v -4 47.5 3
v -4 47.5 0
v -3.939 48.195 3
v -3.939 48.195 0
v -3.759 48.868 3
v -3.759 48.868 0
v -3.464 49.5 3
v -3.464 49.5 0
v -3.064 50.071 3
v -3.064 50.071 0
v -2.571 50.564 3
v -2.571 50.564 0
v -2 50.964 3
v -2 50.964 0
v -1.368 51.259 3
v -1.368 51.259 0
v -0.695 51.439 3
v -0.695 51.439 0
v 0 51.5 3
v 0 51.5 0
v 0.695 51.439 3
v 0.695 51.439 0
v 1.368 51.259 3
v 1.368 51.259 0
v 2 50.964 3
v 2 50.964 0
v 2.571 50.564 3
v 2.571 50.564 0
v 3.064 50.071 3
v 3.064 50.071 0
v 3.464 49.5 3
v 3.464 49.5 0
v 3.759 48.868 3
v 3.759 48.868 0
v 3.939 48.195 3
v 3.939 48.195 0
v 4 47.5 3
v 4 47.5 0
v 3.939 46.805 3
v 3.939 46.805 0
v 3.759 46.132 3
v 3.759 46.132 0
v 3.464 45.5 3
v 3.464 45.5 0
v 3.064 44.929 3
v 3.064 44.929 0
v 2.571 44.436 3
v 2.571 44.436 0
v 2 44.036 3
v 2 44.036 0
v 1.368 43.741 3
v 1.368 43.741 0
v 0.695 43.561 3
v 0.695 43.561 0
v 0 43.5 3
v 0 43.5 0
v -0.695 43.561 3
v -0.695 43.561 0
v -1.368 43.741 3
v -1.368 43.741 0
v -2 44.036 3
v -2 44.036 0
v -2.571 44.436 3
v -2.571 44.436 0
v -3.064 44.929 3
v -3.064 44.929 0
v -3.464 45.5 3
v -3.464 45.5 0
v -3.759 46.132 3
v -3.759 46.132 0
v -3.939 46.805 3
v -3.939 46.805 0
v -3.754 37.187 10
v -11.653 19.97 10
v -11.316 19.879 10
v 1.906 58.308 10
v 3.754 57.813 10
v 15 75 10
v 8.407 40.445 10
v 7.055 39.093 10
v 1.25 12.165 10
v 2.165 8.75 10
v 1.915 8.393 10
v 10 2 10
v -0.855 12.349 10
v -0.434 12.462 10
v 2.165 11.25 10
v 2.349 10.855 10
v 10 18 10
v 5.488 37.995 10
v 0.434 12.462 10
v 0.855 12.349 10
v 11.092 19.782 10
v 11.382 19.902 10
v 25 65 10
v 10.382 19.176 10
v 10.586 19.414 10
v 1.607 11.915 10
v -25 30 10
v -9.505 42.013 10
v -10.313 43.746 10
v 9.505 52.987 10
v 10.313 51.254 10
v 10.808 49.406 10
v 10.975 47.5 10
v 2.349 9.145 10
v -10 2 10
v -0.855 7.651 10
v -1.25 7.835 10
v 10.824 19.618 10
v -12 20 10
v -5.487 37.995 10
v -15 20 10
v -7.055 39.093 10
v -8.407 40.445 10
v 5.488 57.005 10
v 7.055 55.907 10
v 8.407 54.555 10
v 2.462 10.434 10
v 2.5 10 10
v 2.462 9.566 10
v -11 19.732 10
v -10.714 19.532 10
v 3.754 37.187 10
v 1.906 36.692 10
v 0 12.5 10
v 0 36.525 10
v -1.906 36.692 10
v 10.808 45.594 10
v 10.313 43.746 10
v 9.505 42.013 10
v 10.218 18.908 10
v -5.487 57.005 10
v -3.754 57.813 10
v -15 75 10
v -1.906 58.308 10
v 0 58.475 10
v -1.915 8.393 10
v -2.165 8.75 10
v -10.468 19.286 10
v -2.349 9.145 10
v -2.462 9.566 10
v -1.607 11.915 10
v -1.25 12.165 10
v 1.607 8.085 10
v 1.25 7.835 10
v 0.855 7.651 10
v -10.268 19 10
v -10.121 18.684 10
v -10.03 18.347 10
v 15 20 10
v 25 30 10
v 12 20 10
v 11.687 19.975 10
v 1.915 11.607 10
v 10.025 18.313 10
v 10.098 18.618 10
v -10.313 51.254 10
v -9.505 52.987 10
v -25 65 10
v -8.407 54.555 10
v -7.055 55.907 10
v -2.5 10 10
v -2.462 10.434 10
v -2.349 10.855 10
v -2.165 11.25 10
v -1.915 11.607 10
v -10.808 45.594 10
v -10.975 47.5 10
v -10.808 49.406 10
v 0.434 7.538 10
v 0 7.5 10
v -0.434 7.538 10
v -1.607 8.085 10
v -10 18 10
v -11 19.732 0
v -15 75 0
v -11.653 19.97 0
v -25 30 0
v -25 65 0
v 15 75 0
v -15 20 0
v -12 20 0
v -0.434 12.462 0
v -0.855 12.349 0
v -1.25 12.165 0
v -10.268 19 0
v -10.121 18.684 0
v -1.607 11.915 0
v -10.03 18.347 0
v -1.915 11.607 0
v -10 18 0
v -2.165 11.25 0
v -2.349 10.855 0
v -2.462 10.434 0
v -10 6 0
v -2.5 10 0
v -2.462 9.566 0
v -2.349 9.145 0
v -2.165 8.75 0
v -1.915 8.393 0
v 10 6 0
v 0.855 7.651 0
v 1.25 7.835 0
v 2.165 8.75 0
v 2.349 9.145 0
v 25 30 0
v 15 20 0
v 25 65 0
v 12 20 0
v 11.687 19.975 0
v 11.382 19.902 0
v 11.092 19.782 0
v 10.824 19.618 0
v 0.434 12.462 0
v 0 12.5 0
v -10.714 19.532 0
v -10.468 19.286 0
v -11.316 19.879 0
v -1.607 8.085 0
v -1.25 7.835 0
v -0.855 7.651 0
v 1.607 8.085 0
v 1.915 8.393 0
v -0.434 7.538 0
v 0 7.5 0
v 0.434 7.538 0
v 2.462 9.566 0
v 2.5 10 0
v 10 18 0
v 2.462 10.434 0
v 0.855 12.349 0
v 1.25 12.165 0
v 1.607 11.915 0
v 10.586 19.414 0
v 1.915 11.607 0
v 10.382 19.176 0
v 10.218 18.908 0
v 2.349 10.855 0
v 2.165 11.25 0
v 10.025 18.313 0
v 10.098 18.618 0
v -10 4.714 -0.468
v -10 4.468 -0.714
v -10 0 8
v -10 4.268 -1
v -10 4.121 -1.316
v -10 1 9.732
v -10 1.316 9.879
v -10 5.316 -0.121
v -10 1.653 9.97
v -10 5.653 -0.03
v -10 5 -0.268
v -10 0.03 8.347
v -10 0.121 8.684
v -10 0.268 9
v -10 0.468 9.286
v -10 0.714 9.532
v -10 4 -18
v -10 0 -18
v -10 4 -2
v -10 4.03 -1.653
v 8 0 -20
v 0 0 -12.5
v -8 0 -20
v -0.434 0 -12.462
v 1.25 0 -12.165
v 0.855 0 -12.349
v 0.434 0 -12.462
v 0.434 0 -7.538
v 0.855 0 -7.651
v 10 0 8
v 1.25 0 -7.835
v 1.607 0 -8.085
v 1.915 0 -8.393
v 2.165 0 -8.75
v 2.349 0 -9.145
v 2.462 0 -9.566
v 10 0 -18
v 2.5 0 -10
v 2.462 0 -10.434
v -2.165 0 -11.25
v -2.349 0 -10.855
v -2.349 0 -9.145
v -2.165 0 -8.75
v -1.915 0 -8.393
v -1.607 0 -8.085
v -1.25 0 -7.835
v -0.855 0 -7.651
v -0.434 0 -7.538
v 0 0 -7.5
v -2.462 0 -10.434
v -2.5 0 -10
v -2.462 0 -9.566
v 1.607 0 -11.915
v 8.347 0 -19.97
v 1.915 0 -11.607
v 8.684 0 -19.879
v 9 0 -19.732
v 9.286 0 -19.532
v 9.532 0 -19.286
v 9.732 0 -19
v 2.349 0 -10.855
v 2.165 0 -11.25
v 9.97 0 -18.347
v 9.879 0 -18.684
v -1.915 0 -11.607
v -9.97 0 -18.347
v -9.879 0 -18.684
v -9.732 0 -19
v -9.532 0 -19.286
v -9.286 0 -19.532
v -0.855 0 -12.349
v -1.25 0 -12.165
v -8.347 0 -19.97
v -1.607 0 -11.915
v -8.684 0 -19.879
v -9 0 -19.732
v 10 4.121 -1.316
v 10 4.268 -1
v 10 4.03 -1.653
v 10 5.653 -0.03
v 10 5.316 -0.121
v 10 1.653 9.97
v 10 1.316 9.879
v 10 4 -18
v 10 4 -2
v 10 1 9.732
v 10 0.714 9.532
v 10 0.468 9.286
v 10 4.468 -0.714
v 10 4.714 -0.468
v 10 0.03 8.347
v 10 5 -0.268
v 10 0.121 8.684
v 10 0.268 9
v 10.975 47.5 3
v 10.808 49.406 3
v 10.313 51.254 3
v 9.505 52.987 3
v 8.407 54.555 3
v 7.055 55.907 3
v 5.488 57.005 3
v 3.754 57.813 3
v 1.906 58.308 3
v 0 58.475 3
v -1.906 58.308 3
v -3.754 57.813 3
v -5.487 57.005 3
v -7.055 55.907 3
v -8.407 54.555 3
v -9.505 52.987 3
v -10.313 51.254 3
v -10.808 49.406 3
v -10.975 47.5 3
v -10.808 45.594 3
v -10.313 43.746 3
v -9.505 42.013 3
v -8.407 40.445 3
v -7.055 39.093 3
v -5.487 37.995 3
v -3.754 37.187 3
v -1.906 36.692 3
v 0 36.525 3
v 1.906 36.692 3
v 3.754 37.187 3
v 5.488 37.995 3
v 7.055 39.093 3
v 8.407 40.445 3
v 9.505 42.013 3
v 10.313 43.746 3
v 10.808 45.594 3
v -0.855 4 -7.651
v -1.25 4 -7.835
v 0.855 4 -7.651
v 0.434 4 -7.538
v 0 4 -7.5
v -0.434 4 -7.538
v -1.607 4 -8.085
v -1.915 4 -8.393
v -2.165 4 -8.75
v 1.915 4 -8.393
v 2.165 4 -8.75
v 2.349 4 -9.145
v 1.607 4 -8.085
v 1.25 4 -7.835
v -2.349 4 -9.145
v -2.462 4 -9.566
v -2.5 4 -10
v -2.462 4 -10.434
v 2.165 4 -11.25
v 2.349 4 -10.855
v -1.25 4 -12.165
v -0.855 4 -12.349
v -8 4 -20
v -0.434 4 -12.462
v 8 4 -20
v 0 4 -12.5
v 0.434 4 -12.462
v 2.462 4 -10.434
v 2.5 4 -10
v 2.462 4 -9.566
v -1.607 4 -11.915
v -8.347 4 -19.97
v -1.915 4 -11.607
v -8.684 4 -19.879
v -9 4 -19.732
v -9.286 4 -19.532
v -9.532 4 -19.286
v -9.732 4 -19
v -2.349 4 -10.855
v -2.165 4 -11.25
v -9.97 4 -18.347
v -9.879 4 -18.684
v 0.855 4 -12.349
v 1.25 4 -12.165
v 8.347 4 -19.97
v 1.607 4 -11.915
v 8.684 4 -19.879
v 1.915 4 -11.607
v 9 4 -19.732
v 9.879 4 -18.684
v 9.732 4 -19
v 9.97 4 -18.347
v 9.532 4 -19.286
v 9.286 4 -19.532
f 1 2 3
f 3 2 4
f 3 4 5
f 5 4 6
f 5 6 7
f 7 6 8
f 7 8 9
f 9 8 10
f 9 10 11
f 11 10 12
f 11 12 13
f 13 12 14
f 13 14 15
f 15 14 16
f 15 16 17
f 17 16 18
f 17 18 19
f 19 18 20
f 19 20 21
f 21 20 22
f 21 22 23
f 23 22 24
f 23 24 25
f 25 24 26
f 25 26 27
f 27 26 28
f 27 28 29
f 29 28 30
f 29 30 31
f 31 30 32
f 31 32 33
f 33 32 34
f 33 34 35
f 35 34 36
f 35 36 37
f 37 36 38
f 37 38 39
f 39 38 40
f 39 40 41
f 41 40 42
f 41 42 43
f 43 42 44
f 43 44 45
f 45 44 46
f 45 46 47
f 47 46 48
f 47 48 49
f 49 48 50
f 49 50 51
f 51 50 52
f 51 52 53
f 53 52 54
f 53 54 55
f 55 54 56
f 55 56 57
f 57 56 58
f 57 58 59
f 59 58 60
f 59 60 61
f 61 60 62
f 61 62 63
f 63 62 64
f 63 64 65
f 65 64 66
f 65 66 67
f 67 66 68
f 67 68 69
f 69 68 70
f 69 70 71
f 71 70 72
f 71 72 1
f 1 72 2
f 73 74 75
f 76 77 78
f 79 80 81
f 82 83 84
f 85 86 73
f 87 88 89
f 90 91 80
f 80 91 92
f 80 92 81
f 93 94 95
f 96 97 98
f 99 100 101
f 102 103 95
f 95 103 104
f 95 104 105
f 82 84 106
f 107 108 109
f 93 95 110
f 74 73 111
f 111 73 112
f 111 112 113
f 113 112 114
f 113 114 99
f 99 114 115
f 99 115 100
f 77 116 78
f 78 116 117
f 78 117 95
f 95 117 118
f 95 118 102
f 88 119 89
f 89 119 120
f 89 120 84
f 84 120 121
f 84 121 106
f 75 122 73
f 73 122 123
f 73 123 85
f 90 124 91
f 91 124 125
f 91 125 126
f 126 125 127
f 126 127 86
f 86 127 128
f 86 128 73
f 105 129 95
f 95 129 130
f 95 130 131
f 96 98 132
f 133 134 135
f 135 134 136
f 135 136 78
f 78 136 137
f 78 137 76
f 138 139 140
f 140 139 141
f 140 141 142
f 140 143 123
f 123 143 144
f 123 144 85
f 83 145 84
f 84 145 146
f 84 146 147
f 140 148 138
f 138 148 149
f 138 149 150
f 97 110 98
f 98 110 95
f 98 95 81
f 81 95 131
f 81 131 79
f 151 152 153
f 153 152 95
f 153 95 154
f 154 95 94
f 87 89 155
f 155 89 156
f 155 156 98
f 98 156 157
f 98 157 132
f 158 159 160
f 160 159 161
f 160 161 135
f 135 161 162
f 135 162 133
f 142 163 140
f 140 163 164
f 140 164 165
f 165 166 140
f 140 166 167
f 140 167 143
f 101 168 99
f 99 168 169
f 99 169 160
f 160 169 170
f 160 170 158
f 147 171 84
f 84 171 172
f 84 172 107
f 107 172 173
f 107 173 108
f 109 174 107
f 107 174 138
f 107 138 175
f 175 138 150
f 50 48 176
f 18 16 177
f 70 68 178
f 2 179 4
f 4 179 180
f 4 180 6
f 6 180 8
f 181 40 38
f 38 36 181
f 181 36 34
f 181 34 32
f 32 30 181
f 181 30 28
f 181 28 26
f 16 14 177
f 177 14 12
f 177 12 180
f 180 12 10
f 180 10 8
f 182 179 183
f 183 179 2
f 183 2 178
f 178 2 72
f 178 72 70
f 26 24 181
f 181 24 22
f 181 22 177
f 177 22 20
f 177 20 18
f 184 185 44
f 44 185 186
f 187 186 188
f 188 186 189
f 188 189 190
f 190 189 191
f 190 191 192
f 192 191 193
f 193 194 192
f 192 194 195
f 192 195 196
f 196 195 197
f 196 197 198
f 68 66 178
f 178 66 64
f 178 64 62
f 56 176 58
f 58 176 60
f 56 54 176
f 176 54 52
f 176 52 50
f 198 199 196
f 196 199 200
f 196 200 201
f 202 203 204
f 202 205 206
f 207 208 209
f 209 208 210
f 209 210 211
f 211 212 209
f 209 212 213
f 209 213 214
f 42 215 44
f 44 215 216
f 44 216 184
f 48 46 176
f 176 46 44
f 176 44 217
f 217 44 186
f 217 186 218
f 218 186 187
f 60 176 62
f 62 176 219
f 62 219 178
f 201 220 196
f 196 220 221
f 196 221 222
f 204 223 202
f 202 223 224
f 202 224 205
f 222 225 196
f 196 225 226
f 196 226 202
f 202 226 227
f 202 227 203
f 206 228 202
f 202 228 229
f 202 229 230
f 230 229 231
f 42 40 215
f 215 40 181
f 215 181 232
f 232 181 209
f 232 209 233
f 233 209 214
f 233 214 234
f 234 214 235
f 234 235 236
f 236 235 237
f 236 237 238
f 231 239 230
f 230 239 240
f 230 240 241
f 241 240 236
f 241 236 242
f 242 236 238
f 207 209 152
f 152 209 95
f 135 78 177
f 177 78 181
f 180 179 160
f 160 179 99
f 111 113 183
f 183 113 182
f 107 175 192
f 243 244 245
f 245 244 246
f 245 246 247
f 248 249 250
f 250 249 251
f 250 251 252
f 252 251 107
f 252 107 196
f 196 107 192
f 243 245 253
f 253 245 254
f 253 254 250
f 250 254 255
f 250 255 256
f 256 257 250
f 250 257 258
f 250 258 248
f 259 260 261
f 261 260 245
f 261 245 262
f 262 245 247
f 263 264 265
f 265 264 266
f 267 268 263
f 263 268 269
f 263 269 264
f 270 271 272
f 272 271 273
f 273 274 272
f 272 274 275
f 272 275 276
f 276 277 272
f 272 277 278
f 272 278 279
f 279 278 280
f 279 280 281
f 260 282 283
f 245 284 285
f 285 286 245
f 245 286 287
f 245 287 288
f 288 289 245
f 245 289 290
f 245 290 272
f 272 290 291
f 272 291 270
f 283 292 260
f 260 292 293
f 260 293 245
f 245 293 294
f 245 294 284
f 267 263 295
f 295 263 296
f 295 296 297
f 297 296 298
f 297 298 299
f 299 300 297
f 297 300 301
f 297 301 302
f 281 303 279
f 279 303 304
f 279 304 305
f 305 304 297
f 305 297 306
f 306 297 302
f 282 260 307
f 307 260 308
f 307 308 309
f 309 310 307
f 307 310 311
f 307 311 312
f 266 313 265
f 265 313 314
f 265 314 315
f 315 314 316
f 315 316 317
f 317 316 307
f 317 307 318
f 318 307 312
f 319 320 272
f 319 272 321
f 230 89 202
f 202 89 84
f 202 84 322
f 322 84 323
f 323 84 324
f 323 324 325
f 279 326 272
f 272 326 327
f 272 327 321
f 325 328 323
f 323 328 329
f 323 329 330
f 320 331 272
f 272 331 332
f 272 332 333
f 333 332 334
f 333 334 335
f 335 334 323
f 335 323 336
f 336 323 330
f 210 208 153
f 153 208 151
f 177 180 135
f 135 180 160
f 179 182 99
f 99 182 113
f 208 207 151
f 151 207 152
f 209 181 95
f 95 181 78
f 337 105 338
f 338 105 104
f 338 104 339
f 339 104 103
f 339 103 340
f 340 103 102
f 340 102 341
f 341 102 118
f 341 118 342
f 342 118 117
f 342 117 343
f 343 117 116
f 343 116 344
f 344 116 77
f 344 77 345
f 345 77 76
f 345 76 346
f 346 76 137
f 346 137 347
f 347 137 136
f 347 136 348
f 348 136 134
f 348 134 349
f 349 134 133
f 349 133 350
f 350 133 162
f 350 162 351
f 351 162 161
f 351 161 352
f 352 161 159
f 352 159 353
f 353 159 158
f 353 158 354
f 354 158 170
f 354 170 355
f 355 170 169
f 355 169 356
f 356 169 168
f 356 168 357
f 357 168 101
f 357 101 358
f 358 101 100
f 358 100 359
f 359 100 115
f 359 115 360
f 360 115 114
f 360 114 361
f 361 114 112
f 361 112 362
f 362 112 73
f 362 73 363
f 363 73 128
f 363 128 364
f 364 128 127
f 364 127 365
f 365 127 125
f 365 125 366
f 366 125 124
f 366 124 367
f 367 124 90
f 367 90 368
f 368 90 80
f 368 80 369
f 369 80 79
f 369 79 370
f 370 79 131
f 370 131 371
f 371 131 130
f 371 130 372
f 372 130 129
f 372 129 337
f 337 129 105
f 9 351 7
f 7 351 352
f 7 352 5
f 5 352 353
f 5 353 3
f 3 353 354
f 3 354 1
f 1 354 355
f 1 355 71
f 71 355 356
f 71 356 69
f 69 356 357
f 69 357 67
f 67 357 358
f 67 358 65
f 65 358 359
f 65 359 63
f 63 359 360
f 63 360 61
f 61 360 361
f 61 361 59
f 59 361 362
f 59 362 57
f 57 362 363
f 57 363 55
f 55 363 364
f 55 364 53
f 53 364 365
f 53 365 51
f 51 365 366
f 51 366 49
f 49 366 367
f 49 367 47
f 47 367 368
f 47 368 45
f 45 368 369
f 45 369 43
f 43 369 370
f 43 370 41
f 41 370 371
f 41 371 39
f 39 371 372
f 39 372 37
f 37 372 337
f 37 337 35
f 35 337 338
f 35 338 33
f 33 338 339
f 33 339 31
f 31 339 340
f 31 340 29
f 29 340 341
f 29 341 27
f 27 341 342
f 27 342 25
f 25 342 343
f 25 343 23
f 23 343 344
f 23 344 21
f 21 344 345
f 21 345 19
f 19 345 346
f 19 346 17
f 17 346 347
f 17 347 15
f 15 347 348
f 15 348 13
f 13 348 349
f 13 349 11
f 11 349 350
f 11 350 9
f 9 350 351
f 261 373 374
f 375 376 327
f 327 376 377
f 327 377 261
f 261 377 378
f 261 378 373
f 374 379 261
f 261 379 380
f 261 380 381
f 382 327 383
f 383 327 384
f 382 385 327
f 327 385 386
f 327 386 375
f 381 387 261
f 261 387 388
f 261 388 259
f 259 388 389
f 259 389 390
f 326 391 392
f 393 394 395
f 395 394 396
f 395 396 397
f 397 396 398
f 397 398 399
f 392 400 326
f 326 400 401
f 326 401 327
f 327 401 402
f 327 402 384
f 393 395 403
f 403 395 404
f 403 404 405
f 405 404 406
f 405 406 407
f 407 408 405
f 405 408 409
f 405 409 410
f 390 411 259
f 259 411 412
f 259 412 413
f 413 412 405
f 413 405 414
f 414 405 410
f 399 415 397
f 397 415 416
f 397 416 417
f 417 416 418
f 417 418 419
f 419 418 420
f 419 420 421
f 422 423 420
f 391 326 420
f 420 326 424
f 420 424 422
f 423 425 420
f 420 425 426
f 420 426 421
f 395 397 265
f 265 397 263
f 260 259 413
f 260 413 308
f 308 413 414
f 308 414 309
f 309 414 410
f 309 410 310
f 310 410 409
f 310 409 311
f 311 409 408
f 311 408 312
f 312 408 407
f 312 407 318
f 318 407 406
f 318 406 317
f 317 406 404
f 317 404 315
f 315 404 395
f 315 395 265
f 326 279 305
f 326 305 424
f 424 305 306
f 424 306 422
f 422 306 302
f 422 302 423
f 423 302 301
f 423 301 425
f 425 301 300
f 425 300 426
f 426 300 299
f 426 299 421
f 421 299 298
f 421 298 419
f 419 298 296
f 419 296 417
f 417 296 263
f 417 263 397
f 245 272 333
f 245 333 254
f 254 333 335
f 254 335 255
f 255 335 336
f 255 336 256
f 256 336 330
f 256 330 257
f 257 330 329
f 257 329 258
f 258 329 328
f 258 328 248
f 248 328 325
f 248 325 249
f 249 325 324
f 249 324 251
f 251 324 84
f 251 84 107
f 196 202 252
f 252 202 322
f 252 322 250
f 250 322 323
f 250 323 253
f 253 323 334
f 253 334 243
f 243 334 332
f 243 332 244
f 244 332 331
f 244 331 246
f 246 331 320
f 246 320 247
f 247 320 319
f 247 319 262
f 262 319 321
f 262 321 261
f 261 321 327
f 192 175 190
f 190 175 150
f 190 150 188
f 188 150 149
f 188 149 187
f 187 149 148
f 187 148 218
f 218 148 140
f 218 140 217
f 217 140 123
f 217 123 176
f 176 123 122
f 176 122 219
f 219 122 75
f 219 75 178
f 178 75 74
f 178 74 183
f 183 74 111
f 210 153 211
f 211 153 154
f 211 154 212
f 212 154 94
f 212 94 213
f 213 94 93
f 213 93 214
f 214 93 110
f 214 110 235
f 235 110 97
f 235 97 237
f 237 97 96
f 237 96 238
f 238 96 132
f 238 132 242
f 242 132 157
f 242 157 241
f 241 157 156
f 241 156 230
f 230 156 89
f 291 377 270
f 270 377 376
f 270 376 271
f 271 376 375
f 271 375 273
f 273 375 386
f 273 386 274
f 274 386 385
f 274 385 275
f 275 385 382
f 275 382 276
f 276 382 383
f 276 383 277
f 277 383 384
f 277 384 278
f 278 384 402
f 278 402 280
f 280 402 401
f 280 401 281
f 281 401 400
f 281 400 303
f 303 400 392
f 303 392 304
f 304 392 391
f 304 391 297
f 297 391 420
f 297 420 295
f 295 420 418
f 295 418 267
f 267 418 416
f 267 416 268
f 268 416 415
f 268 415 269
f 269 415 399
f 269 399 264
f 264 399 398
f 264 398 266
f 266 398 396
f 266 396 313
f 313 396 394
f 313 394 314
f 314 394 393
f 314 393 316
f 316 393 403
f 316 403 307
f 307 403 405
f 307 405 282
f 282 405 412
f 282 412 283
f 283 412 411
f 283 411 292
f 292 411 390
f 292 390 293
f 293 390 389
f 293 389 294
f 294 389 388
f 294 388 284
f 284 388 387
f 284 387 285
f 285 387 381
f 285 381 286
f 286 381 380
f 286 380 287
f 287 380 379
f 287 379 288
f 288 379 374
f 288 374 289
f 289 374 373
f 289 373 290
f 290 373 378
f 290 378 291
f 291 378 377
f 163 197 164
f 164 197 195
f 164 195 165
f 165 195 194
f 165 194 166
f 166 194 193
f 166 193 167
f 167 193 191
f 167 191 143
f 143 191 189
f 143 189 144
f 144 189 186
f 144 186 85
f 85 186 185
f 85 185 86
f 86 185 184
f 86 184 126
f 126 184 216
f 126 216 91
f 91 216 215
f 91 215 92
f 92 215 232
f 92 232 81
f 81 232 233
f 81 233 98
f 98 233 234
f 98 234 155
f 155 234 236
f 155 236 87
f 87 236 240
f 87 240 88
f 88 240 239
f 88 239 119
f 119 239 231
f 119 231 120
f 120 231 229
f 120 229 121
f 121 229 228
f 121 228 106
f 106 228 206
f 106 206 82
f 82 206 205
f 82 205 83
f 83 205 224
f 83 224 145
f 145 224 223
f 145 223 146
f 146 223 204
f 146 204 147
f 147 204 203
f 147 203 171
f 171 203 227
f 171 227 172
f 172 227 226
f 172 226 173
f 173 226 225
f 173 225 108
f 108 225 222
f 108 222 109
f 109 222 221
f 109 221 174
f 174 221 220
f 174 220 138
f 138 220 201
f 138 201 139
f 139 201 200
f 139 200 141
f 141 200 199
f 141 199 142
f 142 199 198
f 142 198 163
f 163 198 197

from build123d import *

# Parameters (mm, degrees)
SCHIZZO1_R                   = 4
ESTRUSIONE_ESTRUSIONE1_DEPTH = 10
SMUSSO1_SIZE                 = 10
SCHIZZO3_R                   = 10.975
TAGLIO_ESTRUSIONE1_DEPTH     = 7
SCHIZZO4_W                   = 20
SCHIZZO4_H                   = 4
ESTRUSIONE_ESTRUSIONE2_DEPTH = 20
RACCORDO1_R                  = 2
SCHIZZO5_R                   = 2.5
TAGLIO_ESTRUSIONE2_DEPTH     = 20
SCHIZZO6_R                   = 2.5
TAGLIO_ESTRUSIONE3_DEPTH     = 11


with BuildPart() as part:
    # Schizzo1 → Estrusione-Estrusione1 (new body)
    with BuildSketch(Plane.XY):
        Polygon((-25, 20), (-10, 20), (-10, 0), (10, 0), (10, 20), (25, 20), (25, 75), (-25, 75), align=None)
        with Locations((0, 47.5)):
            Circle(SCHIZZO1_R, mode=Mode.SUBTRACT)
    extrude(amount=ESTRUSIONE_ESTRUSIONE1_DEPTH)

    # Smusso1
    smusso1_edges = [part.edges().sort_by_distance(p)[0] for p in [
        (25, 20, 5),
        (-25, 20, 5),
        (-25, 75, 5),
        (25, 75, 5),
    ]]
    chamfer(smusso1_edges, length=SMUSSO1_SIZE)

    # Schizzo3 → Taglio-Estrusione1 (cut)
    with BuildSketch(Plane.XY.offset(10)):
        with Locations((0, 47.5)):
            Circle(SCHIZZO3_R)
    extrude(amount=-TAGLIO_ESTRUSIONE1_DEPTH, mode=Mode.SUBTRACT)

    # Schizzo4 → Estrusione-Estrusione2 (add)
    with BuildSketch(Plane(origin=(0, 0, 0), x_dir=(-1, 0, 0), z_dir=(0, 0, -1))):
        with Locations((0, 2)):
            Rectangle(SCHIZZO4_W, SCHIZZO4_H)
    extrude(amount=ESTRUSIONE_ESTRUSIONE2_DEPTH)

    # Raccordo1
    raccordo1_edges = [part.edges().sort_by_distance(p)[0] for p in [
        (10, 20, 5),
        (-10, 20, 5),
        (0, 0, 10),
        (0, 4, 0),
        (10, 2, -20),
        (-10, 2, -20),
    ]]
    fillet(raccordo1_edges, radius=RACCORDO1_R)

    # Schizzo5 → Taglio-Estrusione2 (cut)
    with BuildSketch(Plane(origin=(0, 4, 0), x_dir=(1, 0, 0), z_dir=(0, 1, 0))):
        with Locations((0, 10)):
            Circle(SCHIZZO5_R)
    extrude(amount=-TAGLIO_ESTRUSIONE2_DEPTH, mode=Mode.SUBTRACT)

    # Schizzo6 → Taglio-Estrusione3 (cut, through all)
    with BuildSketch(Plane(origin=(0, 0, 0), x_dir=(-1, 0, 0), z_dir=(0, 0, -1))):
        with Locations((0, 10)):
            Circle(SCHIZZO6_R)
    extrude(amount=-TAGLIO_ESTRUSIONE3_DEPTH, mode=Mode.SUBTRACT)


solid = part.part
